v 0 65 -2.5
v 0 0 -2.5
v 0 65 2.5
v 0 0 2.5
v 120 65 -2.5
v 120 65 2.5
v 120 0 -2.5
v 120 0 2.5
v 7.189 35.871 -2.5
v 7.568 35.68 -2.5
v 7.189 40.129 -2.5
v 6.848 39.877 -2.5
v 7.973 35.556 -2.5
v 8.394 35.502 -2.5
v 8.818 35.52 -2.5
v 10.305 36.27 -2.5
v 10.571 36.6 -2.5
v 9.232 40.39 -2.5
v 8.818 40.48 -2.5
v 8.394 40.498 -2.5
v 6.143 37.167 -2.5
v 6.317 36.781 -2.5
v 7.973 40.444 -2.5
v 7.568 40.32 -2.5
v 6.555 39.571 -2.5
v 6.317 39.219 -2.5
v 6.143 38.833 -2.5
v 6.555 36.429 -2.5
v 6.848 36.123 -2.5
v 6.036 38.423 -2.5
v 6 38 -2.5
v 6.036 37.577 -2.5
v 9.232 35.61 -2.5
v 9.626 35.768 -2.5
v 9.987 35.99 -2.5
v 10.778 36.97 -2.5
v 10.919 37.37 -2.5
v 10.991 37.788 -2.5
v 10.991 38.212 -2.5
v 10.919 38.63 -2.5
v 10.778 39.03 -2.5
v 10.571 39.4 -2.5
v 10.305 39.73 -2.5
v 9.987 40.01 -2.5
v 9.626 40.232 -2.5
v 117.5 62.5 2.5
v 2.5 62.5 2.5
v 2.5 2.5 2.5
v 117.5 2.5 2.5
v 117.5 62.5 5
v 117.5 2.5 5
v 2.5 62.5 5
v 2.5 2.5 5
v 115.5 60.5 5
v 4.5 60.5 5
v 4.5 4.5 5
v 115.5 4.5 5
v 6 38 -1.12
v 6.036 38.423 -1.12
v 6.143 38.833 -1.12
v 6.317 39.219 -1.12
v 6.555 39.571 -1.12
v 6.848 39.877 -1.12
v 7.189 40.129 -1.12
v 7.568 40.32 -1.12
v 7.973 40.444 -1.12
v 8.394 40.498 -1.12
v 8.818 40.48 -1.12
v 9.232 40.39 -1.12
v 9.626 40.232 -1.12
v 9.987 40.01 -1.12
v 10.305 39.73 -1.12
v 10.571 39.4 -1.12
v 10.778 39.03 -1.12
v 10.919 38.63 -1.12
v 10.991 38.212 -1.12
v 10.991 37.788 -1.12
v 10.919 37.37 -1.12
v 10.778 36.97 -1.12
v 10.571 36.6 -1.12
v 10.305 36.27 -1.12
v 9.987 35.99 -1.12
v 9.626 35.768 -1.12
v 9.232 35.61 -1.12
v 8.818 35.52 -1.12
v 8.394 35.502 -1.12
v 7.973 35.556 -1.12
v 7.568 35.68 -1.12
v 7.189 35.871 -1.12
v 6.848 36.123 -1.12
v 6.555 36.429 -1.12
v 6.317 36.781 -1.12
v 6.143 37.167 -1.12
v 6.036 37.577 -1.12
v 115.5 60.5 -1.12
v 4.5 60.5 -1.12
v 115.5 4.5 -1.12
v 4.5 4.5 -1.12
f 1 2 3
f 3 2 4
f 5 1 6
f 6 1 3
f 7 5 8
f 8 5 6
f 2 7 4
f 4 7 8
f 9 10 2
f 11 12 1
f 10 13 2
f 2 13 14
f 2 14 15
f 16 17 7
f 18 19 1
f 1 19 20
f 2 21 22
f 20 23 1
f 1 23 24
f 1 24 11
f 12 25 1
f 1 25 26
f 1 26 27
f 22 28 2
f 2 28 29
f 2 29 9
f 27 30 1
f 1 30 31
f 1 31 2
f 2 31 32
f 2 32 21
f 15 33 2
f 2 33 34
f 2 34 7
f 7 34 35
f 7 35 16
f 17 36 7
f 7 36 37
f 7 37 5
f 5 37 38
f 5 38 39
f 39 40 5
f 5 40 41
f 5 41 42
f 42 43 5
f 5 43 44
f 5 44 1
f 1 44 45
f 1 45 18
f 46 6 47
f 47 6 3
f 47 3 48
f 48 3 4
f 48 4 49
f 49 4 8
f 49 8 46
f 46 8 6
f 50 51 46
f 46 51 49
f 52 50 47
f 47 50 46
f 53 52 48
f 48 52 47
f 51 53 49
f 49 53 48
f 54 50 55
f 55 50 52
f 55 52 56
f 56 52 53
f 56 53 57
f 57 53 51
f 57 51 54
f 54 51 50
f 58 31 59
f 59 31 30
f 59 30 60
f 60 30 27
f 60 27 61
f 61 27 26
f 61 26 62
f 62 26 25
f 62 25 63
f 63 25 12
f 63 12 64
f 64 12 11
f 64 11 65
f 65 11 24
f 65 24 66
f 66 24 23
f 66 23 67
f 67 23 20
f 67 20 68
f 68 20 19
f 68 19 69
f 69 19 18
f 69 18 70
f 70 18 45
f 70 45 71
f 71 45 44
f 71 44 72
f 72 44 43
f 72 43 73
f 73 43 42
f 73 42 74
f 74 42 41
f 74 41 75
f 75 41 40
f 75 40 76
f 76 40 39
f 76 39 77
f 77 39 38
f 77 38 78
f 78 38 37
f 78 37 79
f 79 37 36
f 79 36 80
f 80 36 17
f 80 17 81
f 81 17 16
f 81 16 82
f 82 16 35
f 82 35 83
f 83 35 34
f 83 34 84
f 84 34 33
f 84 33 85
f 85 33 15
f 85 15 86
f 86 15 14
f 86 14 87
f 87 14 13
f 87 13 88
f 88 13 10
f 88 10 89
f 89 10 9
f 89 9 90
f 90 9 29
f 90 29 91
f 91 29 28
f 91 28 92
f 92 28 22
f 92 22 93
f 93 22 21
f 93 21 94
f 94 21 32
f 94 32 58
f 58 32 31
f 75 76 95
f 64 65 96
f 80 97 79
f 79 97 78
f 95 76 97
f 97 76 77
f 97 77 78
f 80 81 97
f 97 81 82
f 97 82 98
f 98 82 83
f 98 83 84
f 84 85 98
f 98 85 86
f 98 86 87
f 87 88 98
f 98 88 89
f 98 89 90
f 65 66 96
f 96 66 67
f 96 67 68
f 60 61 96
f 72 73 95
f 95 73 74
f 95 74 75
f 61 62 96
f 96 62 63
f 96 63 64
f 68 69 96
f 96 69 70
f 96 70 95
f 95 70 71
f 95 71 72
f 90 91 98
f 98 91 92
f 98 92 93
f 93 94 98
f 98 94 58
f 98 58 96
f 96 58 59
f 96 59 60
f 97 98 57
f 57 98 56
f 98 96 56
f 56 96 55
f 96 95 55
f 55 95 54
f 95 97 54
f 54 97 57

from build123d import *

# Parameters (mm, degrees)
SKETCH1_W                    = 120
SKETCH1_H                    = 65
BOSS_EXTRUDE1_DEPTH          = 5
SKETCH2_W                    = 115
SKETCH2_H                    = 60
BOSS_EXTRUDE2_DEPTH          = 2.5
F_5_0_5_DIAMETER_HOLE1_D     = 5
F_5_0_5_DIAMETER_HOLE1_DEPTH = 7.5
SKETCH5_W                    = 111
SKETCH5_H                    = 56
CUT_EXTRUDE3_DEPTH           = 6.12


with BuildPart() as part:
    # Sketch1 → Boss-Extrude1 (new body)
    with BuildSketch(Plane.XY.offset(2.5)):
        with Locations((60, 32.5)):
            Rectangle(SKETCH1_W, SKETCH1_H)
    extrude(amount=-BOSS_EXTRUDE1_DEPTH)

    # Sketch2 → Boss-Extrude2 (add)
    with BuildSketch(Plane.XY.offset(2.5)):
        with Locations((60, 32.5)):
            Rectangle(SKETCH2_W, SKETCH2_H)
    extrude(amount=BOSS_EXTRUDE2_DEPTH)

    # Ø5.0 (5) Diameter Hole1
    with Locations(Plane(origin=(0, 0, -2.5), x_dir=(-1, 0, 0), z_dir=(0, 0, -1))):
        with Locations((-8.5, 38)):
            Hole(F_5_0_5_DIAMETER_HOLE1_D / 2, depth=F_5_0_5_DIAMETER_HOLE1_DEPTH)

    # Sketch5 → Cut-Extrude3 (cut)
    with BuildSketch(Plane.XY.offset(5)):
        with Locations((60, 32.5)):
            Rectangle(SKETCH5_W, SKETCH5_H)
    extrude(amount=-CUT_EXTRUDE3_DEPTH, mode=Mode.SUBTRACT)


solid = part.part
